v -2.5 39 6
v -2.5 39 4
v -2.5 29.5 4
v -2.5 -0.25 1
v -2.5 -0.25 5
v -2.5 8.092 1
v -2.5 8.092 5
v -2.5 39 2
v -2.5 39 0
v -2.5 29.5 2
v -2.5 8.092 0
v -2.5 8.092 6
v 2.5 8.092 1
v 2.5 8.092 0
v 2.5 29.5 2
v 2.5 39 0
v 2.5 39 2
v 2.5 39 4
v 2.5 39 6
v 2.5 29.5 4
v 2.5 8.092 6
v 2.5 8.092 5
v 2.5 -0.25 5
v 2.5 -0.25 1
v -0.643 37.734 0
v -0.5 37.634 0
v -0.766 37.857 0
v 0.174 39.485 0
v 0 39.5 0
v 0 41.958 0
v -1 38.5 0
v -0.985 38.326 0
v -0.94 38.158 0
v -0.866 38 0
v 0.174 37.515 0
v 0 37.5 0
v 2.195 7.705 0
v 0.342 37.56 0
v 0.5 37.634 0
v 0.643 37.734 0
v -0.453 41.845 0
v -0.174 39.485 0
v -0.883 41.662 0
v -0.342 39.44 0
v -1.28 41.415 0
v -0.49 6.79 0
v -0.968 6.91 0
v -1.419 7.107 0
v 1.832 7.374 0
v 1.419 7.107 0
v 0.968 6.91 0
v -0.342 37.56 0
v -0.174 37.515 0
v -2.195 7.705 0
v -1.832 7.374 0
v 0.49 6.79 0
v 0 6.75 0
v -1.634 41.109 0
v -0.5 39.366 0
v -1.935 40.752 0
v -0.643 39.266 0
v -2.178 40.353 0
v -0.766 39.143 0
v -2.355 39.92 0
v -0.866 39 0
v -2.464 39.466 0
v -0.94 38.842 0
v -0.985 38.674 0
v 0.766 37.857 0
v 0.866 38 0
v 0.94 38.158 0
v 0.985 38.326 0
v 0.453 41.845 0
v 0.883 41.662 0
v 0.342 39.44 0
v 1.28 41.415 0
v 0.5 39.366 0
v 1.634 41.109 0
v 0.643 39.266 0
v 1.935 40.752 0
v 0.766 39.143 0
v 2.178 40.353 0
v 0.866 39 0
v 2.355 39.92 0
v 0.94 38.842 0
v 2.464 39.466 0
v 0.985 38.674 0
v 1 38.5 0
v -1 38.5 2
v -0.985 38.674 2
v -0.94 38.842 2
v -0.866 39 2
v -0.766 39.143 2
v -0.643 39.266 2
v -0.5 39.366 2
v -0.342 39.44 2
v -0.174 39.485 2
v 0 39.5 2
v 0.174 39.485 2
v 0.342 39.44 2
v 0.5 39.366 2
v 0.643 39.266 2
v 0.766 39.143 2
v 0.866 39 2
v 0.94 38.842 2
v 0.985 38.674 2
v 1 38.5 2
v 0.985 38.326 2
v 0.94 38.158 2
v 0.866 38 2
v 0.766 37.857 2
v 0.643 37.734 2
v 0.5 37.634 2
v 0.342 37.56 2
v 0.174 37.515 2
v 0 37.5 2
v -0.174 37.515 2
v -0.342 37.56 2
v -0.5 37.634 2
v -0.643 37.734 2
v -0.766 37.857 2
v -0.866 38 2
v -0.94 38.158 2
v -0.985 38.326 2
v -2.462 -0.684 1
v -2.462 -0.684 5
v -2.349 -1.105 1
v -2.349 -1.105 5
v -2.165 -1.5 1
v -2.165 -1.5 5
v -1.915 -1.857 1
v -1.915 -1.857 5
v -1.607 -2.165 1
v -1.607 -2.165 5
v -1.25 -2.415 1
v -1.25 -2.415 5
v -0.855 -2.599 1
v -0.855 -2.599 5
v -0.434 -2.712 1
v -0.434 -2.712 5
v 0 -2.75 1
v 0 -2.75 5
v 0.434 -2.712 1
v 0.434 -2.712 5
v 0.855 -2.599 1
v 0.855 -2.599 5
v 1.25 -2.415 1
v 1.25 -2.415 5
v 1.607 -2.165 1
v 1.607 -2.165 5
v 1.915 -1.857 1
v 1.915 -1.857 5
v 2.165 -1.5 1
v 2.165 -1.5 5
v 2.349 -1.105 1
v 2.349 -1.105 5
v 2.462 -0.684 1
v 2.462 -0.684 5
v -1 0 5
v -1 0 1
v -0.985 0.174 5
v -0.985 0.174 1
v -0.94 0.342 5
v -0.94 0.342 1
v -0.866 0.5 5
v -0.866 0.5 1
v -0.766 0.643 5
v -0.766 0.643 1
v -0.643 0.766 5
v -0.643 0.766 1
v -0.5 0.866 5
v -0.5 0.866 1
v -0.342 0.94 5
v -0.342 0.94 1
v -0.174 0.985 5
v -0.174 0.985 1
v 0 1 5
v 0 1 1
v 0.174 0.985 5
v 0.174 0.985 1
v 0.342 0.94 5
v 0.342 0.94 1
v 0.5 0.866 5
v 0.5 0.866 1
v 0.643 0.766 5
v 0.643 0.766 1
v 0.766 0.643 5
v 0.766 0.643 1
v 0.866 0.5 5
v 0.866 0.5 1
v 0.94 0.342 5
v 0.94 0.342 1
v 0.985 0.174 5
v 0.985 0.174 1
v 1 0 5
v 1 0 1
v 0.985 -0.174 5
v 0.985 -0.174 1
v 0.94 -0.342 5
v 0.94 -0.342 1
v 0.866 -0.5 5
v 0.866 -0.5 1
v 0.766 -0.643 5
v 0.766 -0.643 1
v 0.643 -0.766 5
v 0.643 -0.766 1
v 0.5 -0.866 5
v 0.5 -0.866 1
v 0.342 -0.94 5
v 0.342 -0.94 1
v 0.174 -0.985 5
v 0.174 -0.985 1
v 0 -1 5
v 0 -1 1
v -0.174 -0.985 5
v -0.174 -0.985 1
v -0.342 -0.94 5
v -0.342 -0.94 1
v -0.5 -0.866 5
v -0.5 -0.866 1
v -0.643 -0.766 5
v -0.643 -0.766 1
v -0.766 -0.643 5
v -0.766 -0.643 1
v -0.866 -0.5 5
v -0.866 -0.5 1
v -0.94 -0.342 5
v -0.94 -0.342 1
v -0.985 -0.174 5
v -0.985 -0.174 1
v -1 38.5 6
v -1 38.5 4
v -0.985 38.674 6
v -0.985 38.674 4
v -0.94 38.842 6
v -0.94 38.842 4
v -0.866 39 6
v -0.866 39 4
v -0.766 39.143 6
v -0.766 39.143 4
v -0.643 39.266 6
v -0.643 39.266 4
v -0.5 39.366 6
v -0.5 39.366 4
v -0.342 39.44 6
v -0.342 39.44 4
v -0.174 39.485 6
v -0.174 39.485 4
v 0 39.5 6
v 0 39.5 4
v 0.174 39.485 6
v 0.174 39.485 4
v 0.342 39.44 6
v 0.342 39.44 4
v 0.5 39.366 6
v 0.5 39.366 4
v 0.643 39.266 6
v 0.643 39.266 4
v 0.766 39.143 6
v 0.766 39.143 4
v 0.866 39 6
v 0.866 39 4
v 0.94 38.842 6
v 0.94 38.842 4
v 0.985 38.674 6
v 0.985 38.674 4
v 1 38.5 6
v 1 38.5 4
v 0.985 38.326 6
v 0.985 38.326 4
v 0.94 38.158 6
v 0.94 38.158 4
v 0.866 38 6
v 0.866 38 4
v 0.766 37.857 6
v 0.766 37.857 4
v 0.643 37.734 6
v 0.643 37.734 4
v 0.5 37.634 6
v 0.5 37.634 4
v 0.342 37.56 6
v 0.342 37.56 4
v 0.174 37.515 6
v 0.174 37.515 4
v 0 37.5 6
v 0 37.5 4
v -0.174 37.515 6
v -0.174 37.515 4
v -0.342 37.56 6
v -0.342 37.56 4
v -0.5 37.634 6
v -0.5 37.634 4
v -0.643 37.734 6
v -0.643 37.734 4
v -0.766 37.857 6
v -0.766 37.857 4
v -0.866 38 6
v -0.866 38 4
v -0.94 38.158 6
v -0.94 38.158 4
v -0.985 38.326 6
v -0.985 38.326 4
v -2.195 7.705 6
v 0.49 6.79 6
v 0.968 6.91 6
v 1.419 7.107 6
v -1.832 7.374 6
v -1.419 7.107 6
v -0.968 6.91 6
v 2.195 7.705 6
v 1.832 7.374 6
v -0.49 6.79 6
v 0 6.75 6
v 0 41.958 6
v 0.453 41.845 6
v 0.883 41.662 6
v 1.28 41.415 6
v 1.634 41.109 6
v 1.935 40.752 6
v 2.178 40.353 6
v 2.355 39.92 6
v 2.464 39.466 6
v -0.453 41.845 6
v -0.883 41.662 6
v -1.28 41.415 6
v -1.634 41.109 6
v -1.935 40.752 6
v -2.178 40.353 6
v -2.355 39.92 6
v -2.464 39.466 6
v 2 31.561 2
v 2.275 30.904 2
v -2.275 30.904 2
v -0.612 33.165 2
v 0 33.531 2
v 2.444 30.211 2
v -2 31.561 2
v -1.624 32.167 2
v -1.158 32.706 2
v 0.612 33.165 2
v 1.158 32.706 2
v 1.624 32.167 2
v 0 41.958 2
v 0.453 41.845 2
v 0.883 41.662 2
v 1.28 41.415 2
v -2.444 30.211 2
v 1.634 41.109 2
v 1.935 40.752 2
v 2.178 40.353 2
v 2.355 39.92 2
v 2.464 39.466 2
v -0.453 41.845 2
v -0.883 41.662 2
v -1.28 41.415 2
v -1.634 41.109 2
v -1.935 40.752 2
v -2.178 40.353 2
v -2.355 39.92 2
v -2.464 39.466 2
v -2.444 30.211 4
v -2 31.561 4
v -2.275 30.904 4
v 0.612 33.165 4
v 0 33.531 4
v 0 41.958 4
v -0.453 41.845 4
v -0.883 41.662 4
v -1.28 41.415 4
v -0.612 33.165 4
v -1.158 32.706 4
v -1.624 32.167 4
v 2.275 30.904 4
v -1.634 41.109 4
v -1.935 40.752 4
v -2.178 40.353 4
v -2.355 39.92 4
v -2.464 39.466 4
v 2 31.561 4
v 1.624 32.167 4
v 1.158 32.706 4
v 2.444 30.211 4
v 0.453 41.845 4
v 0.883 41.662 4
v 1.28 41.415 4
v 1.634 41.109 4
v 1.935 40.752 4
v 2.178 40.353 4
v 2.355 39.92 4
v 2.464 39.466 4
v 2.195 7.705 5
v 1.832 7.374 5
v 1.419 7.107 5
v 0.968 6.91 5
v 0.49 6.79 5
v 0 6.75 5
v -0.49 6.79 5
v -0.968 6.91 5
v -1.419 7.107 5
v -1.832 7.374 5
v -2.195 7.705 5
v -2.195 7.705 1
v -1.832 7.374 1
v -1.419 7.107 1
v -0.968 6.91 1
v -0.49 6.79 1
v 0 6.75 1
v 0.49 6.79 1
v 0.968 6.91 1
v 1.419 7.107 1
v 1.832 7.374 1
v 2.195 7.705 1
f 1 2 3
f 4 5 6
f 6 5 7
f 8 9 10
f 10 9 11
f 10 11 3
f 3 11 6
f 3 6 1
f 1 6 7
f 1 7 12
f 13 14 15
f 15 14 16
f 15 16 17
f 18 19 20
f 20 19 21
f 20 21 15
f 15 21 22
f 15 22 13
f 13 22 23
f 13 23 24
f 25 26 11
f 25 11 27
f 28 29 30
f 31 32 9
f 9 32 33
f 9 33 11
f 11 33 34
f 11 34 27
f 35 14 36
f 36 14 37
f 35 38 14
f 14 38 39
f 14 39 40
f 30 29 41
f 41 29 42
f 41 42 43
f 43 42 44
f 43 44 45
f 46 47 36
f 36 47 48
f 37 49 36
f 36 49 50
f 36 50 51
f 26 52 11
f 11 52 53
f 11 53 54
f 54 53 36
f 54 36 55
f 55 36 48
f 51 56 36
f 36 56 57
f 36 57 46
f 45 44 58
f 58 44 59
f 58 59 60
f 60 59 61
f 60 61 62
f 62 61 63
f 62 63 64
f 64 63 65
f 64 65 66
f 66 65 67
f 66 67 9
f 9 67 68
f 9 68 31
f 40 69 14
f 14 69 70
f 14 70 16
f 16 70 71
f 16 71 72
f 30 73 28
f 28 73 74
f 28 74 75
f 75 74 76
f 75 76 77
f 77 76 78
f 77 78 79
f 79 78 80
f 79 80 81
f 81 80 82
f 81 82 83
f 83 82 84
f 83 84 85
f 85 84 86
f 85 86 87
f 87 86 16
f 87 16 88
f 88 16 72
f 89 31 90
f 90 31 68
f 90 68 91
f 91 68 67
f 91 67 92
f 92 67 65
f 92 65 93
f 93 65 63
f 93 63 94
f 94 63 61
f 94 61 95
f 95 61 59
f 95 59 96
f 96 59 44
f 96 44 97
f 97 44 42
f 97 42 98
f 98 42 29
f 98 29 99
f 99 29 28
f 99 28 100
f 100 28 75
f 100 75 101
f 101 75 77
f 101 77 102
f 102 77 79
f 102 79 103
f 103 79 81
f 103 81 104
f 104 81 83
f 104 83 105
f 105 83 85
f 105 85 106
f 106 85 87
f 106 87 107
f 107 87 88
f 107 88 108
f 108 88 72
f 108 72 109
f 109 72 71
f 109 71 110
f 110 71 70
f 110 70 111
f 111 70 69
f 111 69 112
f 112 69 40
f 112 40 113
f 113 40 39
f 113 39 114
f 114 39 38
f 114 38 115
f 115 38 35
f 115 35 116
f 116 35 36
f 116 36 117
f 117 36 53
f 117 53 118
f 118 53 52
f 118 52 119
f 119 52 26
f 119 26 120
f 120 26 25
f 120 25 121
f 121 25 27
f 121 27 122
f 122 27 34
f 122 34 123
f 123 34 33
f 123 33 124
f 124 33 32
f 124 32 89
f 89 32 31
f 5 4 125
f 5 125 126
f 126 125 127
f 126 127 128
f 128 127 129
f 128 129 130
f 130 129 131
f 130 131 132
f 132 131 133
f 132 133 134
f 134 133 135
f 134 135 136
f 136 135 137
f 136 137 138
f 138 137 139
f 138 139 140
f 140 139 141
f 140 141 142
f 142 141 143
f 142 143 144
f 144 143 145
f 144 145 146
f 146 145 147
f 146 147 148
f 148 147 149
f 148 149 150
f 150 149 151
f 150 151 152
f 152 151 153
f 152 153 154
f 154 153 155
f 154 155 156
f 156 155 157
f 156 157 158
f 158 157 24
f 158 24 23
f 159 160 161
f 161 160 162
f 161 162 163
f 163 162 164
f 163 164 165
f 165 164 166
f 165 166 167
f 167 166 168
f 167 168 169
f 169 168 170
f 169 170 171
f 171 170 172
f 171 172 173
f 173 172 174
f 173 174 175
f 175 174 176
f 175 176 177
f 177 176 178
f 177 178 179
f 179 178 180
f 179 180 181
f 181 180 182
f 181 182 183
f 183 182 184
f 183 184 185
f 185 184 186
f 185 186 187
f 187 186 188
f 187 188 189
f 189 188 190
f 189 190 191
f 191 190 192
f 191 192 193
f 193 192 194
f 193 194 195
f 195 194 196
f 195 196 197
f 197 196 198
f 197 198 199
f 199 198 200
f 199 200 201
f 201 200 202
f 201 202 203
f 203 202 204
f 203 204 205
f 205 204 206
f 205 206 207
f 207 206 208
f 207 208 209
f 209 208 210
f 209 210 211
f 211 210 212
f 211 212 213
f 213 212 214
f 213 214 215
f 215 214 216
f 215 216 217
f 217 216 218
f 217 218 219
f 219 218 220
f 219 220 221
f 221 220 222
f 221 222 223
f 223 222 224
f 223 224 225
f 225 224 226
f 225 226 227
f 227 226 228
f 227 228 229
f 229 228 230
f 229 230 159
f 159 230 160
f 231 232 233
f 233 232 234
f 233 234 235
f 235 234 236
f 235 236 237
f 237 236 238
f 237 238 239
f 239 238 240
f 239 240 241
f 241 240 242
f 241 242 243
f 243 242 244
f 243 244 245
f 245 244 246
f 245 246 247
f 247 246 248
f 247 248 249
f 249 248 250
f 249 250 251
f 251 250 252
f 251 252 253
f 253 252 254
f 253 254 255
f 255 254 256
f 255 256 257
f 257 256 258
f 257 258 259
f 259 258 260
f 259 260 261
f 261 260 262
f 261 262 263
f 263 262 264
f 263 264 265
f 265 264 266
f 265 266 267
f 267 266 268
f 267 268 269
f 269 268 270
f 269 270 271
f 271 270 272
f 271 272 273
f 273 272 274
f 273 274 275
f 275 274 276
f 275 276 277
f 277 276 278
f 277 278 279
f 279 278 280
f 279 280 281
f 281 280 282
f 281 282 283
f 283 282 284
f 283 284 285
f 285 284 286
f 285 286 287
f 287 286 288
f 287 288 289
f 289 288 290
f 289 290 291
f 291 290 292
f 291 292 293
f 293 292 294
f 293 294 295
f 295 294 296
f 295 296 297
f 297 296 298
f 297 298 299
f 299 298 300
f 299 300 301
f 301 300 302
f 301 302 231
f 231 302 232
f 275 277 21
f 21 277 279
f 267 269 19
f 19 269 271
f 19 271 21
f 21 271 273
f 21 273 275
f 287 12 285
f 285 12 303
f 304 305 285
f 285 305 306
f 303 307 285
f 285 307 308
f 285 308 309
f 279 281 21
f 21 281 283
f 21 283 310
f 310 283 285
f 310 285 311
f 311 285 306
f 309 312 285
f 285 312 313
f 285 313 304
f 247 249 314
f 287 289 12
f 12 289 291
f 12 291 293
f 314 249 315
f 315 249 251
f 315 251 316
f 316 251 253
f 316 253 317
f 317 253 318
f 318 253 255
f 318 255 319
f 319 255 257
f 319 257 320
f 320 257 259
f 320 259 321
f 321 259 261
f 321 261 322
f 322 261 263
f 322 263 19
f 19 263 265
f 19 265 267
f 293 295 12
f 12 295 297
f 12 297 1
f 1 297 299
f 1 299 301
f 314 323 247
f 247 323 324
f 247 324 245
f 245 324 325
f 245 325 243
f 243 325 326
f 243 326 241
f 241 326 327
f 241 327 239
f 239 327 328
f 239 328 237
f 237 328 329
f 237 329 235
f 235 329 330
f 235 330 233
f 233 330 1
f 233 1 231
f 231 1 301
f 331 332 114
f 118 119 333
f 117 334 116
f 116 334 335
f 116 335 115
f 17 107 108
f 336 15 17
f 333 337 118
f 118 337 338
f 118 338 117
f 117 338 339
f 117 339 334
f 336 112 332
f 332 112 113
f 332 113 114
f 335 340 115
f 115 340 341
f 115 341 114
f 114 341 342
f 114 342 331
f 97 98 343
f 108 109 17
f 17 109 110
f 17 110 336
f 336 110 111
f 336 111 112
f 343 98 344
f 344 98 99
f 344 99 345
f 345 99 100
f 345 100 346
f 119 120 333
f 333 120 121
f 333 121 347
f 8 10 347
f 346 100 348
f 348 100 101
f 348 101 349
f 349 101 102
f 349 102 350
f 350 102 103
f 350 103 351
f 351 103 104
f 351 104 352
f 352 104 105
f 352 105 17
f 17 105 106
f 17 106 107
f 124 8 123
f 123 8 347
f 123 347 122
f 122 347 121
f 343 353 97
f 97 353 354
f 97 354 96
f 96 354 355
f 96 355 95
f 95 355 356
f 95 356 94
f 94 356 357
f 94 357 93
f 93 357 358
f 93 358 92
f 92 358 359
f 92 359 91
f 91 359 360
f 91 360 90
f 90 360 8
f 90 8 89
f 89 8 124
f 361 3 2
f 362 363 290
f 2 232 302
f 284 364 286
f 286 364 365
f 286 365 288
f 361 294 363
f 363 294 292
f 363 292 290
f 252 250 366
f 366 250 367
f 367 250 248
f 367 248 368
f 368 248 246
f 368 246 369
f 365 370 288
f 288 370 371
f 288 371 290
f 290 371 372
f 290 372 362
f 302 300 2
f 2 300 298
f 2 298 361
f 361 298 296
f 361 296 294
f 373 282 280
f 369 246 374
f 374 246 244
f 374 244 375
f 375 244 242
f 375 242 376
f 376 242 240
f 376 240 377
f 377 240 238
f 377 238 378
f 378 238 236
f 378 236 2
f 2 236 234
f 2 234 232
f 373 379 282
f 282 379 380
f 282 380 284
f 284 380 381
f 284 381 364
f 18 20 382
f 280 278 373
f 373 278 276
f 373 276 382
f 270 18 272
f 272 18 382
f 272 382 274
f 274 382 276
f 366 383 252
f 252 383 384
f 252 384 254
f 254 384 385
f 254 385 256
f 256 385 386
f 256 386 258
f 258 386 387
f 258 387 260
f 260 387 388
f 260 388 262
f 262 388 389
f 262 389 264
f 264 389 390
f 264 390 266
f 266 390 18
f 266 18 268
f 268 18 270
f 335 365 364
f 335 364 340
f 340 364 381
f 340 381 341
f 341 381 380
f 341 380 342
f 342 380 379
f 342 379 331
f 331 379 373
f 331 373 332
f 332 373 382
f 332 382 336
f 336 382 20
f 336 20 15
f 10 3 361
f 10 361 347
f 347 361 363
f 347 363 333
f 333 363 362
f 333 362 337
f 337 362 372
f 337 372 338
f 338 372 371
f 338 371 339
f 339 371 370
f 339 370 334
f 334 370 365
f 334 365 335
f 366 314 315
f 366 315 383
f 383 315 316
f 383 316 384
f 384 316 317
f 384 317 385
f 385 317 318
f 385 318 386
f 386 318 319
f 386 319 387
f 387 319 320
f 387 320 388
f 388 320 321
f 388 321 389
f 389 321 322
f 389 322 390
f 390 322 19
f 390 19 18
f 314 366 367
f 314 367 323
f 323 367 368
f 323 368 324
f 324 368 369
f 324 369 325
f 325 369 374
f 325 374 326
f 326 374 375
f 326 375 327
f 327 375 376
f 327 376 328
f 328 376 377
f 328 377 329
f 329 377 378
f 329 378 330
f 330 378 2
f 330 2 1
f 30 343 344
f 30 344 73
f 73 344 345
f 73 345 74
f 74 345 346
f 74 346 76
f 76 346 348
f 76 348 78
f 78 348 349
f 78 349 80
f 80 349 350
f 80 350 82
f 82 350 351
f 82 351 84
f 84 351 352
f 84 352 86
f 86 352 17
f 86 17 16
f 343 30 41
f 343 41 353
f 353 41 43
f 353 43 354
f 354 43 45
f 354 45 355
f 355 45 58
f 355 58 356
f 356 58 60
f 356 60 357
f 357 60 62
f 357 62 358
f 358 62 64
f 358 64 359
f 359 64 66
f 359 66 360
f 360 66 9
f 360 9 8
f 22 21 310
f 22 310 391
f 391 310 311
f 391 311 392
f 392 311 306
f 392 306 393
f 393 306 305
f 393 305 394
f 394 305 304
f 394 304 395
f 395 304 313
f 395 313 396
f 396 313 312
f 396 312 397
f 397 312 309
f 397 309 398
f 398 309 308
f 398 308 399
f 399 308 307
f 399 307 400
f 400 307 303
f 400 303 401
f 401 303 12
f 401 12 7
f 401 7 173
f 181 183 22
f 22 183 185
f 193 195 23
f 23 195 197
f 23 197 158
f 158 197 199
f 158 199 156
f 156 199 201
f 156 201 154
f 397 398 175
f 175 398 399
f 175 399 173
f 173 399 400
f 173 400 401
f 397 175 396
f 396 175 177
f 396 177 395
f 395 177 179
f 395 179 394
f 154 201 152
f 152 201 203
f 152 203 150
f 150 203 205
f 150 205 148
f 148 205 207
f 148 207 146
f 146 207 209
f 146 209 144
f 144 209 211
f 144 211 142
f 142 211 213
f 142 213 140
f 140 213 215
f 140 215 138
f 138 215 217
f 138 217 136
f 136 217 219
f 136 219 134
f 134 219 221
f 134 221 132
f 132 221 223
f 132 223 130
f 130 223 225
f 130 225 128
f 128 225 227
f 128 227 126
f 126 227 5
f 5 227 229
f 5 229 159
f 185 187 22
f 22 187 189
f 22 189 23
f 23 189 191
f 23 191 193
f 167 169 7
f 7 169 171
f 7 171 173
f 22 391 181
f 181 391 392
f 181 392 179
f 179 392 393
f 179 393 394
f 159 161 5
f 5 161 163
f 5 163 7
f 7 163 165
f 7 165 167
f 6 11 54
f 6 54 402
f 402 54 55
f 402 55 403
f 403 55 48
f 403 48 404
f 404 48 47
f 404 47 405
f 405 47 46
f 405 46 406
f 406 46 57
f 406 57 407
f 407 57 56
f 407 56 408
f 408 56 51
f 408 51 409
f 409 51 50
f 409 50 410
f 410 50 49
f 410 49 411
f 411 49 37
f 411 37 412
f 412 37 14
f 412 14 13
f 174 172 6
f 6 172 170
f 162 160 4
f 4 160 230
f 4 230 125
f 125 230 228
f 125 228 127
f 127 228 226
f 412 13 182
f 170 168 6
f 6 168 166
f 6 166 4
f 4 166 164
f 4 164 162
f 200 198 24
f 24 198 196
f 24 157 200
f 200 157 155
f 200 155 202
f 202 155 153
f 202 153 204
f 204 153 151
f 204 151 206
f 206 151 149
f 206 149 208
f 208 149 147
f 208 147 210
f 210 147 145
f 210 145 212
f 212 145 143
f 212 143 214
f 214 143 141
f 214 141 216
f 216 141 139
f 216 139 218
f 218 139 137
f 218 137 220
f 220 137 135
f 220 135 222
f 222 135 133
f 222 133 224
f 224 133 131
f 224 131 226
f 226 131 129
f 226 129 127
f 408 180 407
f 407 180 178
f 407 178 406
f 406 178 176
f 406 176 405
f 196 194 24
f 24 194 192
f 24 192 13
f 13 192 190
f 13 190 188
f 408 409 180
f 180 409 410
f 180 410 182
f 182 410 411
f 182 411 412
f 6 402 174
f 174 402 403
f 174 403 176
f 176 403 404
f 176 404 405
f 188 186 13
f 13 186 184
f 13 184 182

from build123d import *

# Parameters (mm, degrees)
CROQUIS1_R              = 1
SALIENTE_EXTRUIR1_DEPTH = 6
CROQUIS2_W              = 5
CROQUIS2_H              = 2
CORTAR_EXTRUIR1_DEPTH   = 8
REDONDEO1_R             = 4.5
REDONDEO2_R             = 3
CORTAR_EXTRUIR3_START   = -1
CORTAR_EXTRUIR3_DEPTH   = 1


with BuildPart() as part:
    # Croquis1 → Saliente-Extruir1 (new body)
    # profile 1 of 2: a face of its own
    with BuildSketch(Plane.XY):
        with BuildLine():
            Line((-0.968245837, -0.25), (-2.5, -0.25))
            ThreePointArc((-2.5, -0.25), (0, -2.75), (2.5, -0.25))
            Line((2.5, -0.25), (0.968245837, -0.25))
            ThreePointArc((0.968245837, -0.25), (0, -1), (-0.968245837, -0.25))
        make_face()
    # profile 2 of 2: a face of its own
    with BuildSketch(Plane.XY):
        with BuildLine():
            Line((-2.5, -0.25), (-0.968245837, -0.25))
            ThreePointArc((-0.968245837, -0.25), (0, 1), (0.968245837, -0.25))
            Line((0.968245837, -0.25), (2.5, -0.25))
            Line((2.5, -0.25), (2.5, 42))
            Line((2.5, 42), (-2.5, 42))
            Line((-2.5, 42), (-2.5, -0.25))
        make_face()
        with Locations((0, 38.5)):
            Circle(CROQUIS1_R, mode=Mode.SUBTRACT)
    extrude(amount=SALIENTE_EXTRUIR1_DEPTH)

    # Croquis2 → Cortar-Extruir1 (cut)
    with BuildSketch(Plane(origin=(0, 42, 0), x_dir=(1, 0, 0), z_dir=(0, 1, 0))):
        with Locations((0, -3)):
            Rectangle(CROQUIS2_W, CROQUIS2_H)
    extrude(amount=-CORTAR_EXTRUIR1_DEPTH, mode=Mode.SUBTRACT)

    # Redondeo1
    # the kernel refuses this fillet: 4.5 mm, written as the material it takes off along each edge
    with BuildSketch(Plane(origin=(-2.5, 34, 4), x_dir=(0, -1, 0), z_dir=(0, 0, -1)), Plane(origin=(2.5, 34, 2), x_dir=(0, -1, 0), z_dir=(0, 0, 1))) as redondeo1_piece_1:
        with BuildLine():
            CenterArc((REDONDEO1_R, -REDONDEO1_R), REDONDEO1_R, 90, 90)
            Line((0, -REDONDEO1_R), (0, 0))
            Line((0, 0), (REDONDEO1_R, 0))
        make_face()
    extrude(amount=2, mode=Mode.SUBTRACT)

    # Redondeo2
    # the kernel refuses this fillet: 3 mm, written as the material it takes off along each edge
    with BuildSketch(Plane(origin=(-2.5, 42, -3.5), x_dir=(0, -1, 0), z_dir=(0, 0, 1)), Plane(origin=(2.5, 42, -7.5), x_dir=(-1, 0, 0), z_dir=(0, 0, 1)), Plane(origin=(2.5, 42, -3.5), x_dir=(-1, 0, 0), z_dir=(0, 0, 1))) as redondeo2_piece_1:
        with BuildLine():
            CenterArc((REDONDEO2_R, REDONDEO2_R), REDONDEO2_R, 180, 90)
            Line((0, REDONDEO2_R), (0, 0))
            Line((0, 0), (REDONDEO2_R, 0))
        make_face()
    extrude(amount=17, mode=Mode.SUBTRACT)
    with BuildSketch(Plane(origin=(-2.5, 42, -7.5), x_dir=(1, 0, 0), z_dir=(0, 0, 1))) as redondeo2_piece_2:
        with BuildLine():
            CenterArc((REDONDEO2_R, -REDONDEO2_R), REDONDEO2_R, 90, 90)
            Line((0, -REDONDEO2_R), (0, 0))
            Line((0, 0), (REDONDEO2_R, 0))
        make_face()
    extrude(amount=17, mode=Mode.SUBTRACT)

    # Croquis4 → Cortar-Extruir3 (cut)
    with BuildSketch(Plane.XY.offset(6).offset(CORTAR_EXTRUIR3_START)):
        with BuildLine():
            Line((-2.5, 8.091687605), (-2.5, -0.25))
            ThreePointArc((-2.5, -0.25), (0, -2.75), (2.5, -0.25))
            Line((2.5, -0.25), (2.5, 8.091687605))
            ThreePointArc((2.5, 8.091687605), (0, 6.75), (-2.5, 8.091687605))
        make_face()
    cortar_extruir3 = extrude(amount=CORTAR_EXTRUIR3_DEPTH, mode=Mode.SUBTRACT)

    # Simetría1: Cortar-Extruir3 across plane
    add(cortar_extruir3.mirror(Plane.XY.offset(3)), mode=Mode.SUBTRACT)


solid = part.part
